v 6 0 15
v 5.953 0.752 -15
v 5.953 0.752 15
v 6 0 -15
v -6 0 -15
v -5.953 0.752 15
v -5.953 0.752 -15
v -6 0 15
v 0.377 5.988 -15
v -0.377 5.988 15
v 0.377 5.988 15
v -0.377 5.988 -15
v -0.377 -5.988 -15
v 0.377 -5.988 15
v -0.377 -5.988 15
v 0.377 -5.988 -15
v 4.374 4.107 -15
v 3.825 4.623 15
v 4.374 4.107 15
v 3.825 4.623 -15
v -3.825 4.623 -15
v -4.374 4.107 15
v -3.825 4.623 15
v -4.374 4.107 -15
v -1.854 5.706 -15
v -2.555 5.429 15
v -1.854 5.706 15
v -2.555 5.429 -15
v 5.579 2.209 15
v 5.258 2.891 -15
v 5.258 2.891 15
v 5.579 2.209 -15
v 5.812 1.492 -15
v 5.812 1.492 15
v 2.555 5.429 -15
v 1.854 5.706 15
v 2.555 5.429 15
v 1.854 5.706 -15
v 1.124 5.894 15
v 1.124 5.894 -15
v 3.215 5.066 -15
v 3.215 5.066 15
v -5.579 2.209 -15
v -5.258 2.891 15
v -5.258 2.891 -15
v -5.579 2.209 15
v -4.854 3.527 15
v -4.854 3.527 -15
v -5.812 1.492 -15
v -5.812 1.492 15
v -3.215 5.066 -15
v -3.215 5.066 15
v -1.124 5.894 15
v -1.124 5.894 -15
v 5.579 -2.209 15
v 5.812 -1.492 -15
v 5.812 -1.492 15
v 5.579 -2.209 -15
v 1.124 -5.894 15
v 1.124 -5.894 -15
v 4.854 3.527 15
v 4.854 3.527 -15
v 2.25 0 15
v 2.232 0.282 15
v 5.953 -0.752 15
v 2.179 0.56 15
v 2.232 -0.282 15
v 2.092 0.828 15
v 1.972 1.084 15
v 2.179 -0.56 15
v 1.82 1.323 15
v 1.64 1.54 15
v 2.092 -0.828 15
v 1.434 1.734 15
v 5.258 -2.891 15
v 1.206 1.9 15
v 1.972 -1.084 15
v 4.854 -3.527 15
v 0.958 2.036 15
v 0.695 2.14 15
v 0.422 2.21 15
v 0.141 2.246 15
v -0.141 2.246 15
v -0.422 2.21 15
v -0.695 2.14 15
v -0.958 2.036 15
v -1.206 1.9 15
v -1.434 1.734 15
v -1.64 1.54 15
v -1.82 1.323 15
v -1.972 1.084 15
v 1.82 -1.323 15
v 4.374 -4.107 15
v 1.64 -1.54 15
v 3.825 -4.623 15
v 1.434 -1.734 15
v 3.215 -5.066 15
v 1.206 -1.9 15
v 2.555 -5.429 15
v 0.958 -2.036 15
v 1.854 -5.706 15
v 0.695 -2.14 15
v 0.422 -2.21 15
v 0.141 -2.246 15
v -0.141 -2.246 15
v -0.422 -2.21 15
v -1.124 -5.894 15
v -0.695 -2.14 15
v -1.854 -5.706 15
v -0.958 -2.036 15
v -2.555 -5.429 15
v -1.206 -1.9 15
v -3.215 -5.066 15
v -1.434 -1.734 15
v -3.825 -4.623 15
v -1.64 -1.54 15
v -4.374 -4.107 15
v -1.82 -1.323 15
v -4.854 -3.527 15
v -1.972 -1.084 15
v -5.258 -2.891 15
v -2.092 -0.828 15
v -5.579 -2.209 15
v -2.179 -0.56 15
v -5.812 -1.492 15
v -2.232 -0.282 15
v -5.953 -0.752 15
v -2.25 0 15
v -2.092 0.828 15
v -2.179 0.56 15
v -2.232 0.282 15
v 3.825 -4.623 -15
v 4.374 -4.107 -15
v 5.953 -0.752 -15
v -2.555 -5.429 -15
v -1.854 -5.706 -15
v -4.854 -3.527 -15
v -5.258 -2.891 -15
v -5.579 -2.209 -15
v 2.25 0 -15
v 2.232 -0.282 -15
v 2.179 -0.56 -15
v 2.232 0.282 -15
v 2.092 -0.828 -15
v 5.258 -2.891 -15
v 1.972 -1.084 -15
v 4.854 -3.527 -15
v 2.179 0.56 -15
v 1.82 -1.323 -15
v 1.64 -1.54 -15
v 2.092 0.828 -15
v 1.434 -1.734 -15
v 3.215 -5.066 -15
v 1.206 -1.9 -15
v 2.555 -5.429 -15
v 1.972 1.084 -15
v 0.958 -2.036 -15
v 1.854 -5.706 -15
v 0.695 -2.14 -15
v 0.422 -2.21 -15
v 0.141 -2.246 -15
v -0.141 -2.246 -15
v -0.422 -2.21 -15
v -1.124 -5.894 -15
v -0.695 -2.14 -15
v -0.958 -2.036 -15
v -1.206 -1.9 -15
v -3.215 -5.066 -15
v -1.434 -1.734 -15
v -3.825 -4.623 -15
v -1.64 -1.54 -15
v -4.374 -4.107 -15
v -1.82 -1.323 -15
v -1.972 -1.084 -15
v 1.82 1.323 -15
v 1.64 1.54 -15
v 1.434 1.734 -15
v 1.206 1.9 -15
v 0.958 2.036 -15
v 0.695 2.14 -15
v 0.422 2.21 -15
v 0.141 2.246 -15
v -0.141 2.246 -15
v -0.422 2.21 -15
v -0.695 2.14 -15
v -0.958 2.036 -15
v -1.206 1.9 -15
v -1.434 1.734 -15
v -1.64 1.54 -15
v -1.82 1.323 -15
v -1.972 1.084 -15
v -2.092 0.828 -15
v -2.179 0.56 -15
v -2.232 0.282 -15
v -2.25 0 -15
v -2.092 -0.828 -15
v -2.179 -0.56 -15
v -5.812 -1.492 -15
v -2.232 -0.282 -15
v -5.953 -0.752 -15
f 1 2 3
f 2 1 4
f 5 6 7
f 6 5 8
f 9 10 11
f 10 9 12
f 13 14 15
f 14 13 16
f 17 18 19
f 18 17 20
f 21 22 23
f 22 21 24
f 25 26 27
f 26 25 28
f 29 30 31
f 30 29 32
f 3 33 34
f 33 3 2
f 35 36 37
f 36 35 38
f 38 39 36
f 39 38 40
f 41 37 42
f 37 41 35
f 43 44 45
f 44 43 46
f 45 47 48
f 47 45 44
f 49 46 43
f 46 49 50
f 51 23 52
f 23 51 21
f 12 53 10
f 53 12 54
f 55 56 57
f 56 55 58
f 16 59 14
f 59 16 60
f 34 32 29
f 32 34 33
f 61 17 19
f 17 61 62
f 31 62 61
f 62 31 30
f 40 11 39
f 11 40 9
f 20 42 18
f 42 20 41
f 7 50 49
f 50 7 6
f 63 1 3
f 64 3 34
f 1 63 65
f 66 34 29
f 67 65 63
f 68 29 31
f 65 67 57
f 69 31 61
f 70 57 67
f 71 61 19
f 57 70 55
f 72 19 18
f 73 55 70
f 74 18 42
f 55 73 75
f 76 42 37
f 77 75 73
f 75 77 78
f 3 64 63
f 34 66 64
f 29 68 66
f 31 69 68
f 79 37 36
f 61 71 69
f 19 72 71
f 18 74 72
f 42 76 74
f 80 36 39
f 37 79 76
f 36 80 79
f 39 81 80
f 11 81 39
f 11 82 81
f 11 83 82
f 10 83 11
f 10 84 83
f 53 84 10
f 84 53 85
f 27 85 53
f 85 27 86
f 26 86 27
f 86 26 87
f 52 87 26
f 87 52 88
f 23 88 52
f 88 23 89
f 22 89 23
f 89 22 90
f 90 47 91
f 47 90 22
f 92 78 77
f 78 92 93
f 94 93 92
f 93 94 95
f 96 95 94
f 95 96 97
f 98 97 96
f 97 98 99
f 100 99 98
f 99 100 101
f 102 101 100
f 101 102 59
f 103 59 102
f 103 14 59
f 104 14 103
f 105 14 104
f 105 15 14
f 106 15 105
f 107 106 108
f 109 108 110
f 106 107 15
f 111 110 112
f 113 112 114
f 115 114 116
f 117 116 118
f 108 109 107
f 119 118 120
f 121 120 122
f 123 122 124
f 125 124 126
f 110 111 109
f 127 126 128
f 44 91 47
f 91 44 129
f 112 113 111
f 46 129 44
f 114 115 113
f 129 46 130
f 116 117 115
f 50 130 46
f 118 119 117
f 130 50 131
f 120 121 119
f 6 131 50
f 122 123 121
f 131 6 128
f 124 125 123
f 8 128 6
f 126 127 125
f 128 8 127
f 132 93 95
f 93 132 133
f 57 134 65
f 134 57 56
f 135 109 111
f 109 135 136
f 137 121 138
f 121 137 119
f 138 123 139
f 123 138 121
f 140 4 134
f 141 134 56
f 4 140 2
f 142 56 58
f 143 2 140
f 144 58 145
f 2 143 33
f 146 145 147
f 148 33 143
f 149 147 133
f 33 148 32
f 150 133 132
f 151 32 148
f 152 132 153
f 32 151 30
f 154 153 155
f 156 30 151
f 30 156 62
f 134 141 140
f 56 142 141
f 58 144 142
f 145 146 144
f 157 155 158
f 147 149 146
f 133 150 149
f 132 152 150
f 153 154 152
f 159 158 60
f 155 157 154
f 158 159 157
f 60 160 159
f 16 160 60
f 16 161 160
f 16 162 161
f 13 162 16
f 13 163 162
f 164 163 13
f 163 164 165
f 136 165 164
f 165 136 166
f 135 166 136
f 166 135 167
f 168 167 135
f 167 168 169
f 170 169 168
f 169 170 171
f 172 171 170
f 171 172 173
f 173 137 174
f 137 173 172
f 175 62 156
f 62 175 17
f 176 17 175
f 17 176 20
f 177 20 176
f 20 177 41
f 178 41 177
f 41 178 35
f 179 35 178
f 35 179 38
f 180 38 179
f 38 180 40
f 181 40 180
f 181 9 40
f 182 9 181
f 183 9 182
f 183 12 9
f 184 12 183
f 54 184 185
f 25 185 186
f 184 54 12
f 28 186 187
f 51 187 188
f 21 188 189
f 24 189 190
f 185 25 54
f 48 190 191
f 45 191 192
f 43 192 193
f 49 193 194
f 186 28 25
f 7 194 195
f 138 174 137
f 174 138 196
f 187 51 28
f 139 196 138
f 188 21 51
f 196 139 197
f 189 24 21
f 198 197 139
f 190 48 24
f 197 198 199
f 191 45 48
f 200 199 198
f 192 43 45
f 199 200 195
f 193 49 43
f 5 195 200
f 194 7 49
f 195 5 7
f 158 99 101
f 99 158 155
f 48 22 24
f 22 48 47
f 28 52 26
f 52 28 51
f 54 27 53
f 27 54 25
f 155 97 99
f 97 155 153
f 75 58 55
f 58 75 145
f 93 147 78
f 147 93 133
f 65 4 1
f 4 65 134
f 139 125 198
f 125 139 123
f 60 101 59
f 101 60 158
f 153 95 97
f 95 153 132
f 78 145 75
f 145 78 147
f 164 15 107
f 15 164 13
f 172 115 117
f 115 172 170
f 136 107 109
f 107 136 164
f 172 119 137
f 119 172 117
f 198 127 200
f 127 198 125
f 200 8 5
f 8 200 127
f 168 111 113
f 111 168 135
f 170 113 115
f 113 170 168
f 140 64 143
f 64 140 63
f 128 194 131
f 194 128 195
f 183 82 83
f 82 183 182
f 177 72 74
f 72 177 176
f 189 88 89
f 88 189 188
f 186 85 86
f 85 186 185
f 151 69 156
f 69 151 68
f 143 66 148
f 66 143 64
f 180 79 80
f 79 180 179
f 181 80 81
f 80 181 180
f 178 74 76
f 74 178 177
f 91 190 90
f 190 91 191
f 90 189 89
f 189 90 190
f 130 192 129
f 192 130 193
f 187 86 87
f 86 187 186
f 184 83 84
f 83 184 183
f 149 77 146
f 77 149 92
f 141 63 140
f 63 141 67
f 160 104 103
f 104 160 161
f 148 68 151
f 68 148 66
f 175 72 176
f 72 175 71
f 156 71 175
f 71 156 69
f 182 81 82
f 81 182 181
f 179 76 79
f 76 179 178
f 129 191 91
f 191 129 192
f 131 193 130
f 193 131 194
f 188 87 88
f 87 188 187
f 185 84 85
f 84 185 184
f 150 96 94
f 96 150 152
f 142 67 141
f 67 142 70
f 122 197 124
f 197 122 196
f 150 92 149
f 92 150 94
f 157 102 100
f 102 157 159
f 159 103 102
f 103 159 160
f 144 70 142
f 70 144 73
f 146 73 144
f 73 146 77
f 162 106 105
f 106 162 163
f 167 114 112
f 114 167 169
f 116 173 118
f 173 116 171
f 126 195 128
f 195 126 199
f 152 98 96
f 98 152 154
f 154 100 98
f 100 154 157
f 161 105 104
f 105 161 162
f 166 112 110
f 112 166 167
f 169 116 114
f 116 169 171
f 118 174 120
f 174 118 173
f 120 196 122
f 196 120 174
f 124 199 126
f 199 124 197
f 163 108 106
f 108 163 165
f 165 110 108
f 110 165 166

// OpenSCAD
$fn = 50;


difference() {
	union() {
		translate(v = [0, 0, -15.0000000000]) {
			cylinder(h = 30, r = 6.0000000000);
		}
	}
	union() {
		translate(v = [0, 0, -100.0000000000]) {
			cylinder(h = 200, r = 2.2500000000);
		}
	}
}
